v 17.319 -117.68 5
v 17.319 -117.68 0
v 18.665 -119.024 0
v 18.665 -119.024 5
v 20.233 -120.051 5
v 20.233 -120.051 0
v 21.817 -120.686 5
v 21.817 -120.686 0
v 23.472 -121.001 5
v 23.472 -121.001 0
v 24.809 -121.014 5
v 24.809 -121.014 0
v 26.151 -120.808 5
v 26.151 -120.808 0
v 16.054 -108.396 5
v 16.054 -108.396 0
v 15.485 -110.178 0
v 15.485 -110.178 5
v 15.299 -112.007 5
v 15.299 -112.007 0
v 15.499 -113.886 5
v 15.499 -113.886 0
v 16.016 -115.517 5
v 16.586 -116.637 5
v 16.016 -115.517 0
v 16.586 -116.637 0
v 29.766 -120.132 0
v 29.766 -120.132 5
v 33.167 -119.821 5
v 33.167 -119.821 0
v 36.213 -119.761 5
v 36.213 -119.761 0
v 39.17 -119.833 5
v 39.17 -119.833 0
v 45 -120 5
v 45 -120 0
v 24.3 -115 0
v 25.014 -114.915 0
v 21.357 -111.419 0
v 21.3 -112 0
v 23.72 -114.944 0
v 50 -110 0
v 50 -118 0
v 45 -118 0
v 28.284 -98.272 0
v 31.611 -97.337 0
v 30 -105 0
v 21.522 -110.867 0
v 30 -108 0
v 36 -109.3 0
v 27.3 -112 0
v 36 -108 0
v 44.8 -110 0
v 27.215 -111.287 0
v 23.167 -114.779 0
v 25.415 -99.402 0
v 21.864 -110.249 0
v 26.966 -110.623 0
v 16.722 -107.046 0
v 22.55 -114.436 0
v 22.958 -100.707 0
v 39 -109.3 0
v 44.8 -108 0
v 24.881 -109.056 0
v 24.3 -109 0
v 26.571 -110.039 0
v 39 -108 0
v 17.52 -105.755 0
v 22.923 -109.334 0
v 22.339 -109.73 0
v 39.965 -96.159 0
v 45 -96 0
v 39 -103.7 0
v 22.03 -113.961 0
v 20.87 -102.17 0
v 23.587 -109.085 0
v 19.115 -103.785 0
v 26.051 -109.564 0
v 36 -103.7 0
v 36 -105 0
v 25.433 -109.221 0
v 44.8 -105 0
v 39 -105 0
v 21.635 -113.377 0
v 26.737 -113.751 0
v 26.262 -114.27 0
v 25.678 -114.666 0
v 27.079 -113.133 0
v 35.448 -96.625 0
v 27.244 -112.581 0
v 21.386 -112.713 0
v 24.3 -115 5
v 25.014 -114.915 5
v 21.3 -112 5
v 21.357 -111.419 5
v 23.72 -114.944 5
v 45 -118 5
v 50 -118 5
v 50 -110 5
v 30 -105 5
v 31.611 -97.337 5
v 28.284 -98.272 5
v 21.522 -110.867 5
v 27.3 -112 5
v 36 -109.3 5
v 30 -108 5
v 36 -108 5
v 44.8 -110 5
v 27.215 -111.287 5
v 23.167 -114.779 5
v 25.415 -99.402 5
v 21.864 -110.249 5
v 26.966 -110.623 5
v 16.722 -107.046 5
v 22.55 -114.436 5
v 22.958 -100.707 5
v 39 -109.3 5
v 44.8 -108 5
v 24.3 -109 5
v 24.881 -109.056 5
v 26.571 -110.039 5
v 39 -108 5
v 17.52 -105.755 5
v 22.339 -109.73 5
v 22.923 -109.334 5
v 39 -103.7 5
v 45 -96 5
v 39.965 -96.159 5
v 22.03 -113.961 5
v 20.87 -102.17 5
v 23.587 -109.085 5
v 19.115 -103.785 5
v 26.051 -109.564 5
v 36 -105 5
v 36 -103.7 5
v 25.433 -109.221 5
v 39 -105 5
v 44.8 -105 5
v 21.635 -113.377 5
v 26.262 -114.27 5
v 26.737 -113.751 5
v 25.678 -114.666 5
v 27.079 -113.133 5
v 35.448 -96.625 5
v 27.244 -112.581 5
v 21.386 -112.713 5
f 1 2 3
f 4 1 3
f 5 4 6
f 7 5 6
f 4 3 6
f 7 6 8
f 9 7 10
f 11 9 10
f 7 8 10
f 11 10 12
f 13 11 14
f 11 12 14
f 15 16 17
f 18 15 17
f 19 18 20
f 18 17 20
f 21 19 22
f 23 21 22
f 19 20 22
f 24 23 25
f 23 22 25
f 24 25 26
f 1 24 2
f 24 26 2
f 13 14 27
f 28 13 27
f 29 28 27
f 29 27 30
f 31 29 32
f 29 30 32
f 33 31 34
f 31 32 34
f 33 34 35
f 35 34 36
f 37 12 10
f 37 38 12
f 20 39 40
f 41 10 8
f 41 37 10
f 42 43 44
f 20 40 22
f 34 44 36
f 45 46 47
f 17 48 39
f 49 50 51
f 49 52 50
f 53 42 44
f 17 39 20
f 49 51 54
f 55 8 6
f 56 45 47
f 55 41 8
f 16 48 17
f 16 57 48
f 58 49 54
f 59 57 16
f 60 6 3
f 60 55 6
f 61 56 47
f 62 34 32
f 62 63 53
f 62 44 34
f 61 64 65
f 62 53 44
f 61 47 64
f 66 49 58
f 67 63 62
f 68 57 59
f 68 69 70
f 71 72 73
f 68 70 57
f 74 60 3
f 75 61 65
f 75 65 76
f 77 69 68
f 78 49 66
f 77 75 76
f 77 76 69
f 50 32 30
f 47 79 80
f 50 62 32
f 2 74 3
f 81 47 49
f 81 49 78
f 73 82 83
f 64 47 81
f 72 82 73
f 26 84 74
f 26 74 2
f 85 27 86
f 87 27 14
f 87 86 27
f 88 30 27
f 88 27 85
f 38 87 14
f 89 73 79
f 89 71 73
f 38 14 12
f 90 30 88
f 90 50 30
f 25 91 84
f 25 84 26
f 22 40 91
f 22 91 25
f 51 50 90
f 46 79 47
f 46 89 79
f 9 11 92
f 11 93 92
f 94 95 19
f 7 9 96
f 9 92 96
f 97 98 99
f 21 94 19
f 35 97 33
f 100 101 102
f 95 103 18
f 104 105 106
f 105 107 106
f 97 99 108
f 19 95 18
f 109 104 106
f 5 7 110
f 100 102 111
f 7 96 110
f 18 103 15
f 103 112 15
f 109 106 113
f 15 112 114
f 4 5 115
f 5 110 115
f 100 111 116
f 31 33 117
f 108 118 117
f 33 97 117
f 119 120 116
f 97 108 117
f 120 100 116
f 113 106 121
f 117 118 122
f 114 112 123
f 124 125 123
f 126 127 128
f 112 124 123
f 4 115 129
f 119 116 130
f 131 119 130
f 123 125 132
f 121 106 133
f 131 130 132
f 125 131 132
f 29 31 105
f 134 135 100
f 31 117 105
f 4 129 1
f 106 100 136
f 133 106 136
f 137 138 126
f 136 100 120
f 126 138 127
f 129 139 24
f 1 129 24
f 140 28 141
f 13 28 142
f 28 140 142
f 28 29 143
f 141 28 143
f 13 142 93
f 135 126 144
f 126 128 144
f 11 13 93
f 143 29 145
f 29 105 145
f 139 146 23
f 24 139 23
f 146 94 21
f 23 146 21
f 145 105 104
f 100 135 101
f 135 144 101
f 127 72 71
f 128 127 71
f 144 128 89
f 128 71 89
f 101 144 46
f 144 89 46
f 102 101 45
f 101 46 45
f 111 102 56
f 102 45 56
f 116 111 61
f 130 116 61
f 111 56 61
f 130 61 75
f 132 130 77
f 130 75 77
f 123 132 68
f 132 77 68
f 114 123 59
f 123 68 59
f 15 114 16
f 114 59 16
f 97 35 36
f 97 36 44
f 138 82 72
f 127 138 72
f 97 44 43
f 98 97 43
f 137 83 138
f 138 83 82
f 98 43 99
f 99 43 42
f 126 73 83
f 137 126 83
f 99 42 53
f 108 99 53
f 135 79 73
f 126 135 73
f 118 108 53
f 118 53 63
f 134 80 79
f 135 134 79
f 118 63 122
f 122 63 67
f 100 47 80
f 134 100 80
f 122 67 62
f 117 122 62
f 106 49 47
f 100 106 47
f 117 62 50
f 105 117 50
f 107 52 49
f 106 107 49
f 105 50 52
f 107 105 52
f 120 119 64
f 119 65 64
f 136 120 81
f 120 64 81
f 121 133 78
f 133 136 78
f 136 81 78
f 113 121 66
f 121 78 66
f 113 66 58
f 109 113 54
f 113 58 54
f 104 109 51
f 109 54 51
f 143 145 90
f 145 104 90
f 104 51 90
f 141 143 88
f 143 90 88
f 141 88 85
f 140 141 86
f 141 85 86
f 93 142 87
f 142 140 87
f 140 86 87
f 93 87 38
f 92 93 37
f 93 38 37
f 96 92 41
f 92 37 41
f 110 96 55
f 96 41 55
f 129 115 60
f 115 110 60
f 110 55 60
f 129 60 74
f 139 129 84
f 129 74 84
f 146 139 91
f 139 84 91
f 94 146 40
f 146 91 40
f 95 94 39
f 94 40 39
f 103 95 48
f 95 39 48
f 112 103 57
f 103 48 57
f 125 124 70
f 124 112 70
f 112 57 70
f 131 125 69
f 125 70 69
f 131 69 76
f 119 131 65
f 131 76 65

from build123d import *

# Parameters (mm, degrees)
EXTRUSION001_DEPTH = 7
EXTRUSION_DEPTH    = 5


with BuildPart() as extrusion001:
    # Face001 → Extrusion001 (new body)
    with BuildSketch(Plane(origin=(24.300425, -112.00001, 0), x_dir=(0, 1, 0), z_dir=(0, 0, 1))):
        with BuildLine():
            add(Edge.make_bspline(
                [(0, -3), (-1.65685, -3), (-3, -1.656854), (-3, 0)],
                knots=[0, 0, 0, 0, 1, 1, 1, 1], degree=3))
            add(Edge.make_bspline(
                [(3, 0), (3, -1.656854), (1.65685, -3), (0, -3)],
                knots=[0, 0, 0, 0, 1, 1, 1, 1], degree=3))
            add(Edge.make_bspline(
                [(0, 3), (1.65685, 3), (3, 1.656854), (3, 0)],
                knots=[0, 0, 0, 0, 1, 1, 1, 1], degree=3))
            add(Edge.make_bspline(
                [(-3, 0), (-3, 1.656854), (-1.65685, 3), (0, 3)],
                knots=[0, 0, 0, 0, 1, 1, 1, 1], degree=3))
        make_face()
    extrude(amount=EXTRUSION001_DEPTH)


with BuildPart() as extrusion001_1:
    # Extrusion001 placement: moved
    add(extrusion001.part.moved(Location((0, 0, -1))))


with BuildPart() as cut:
    # Face → Extrusion (new body)
    with BuildSketch(Plane(origin=(32.152689, -109.758179, 0), x_dir=(0, -1, 0), z_dir=(0, 0, -1))):
        with BuildLine():
            add(Edge.make_bspline(
                [(7.921471, 14.83379), (10.535191, 12.707465), (11.833861, 9.278731), (11.049561, 6.001894)],
                knots=[0, 0, 0, 0, 1, 1, 1, 1], degree=3))
            add(Edge.make_bspline(
                [(-1.362189, 16.099145), (1.723661, 17.452044), (5.307751, 16.960116), (7.921471, 14.83379)],
                knots=[0, 0, 0, 0, 1, 1, 1, 1], degree=3))
            add(Edge.make_bspline(
                [(-13.758172, -12.847297), (-13.758172, 4.152704), (-8.759767, 12.855899), (-1.362189, 16.099145)],
                knots=[0, 0, 0, 0, 1, 1, 1, 1], degree=3))
            add(Edge.make_bspline(
                [(-4.758169, -12.647297), (-13.758172, -12.847297)],
                knots=[0, 0, 9.002225, 9.002225], degree=1))
            add(Edge.make_bspline(
                [(-4.758169, -6.847297), (-4.758169, -12.647297)],
                knots=[0, 0, 5.8, 5.8], degree=1))
            add(Edge.make_bspline(
                [(-6.058169, -6.847297), (-4.758169, -6.847297)],
                knots=[0, 0, 1.3, 1.3], degree=1))
            add(Edge.make_bspline(
                [(-6.058169, -3.847297), (-6.058169, -6.847297)],
                knots=[0, 0, 3, 3], degree=1))
            add(Edge.make_bspline(
                [(-4.758169, -3.847297), (-6.058169, -3.847297)],
                knots=[0, 0, 1.3, 1.3], degree=1))
            add(Edge.make_bspline(
                [(-4.758169, 2.152704), (-4.758169, -3.847297)],
                knots=[0, 0, 6.000001, 6.000001], degree=1))
            add(Edge.make_bspline(
                [(-1.758169, 2.152704), (-4.758169, 2.152704)],
                knots=[0, 0, 3, 3], degree=1))
            add(Edge.make_bspline(
                [(-1.758169, -3.847297), (-1.758169, 2.152704)],
                knots=[0, 0, 6.000001, 6.000001], degree=1))
            add(Edge.make_bspline(
                [(-0.458169, -3.847297), (-1.758169, -3.847297)],
                knots=[0, 0, 1.3, 1.3], degree=1))
            add(Edge.make_bspline(
                [(-0.458169, -6.847297), (-0.458169, -3.847297)],
                knots=[0, 0, 3, 3], degree=1))
            add(Edge.make_bspline(
                [(-1.758169, -6.847297), (-0.458169, -6.847297)],
                knots=[0, 0, 1.3, 1.3], degree=1))
            add(Edge.make_bspline(
                [(-1.758169, -12.647297), (-1.758169, -6.847297)],
                knots=[0, 0, 5.8, 5.8], degree=1))
            add(Edge.make_bspline(
                [(0.241831, -12.647297), (-1.758169, -12.647297)],
                knots=[0, 0, 2, 2], degree=1))
            add(Edge.make_bspline(
                [(0.241831, -17.847296), (0.241831, -12.647297)],
                knots=[0, 0, 5.199999, 5.199999], degree=1))
            add(Edge.make_bspline(
                [(8.241831, -17.847296), (0.241831, -17.847296)],
                knots=[0, 0, 8, 8], degree=1))
            add(Edge.make_bspline(
                [(8.241831, -12.847297), (8.241831, -17.847296)],
                knots=[0, 0, 4.999999, 4.999999], degree=1))
            add(Edge.make_bspline(
                [(10.241831, -12.847297), (8.241831, -12.847297)],
                knots=[0, 0, 2, 2], degree=1))
            add(Edge.make_bspline(
                [(11.049561, 6.001894), (9.332951, -1.170161), (10.241831, -6.847297), (10.241831, -12.847297)],
                knots=[0, 0, 0, 0, 1, 1, 1, 1], degree=3))
        make_face()
    extrude(amount=-EXTRUSION_DEPTH)

    # Cut: cut Extrusion001
    add(extrusion001_1.part, mode=Mode.SUBTRACT)


solid = cut.part
